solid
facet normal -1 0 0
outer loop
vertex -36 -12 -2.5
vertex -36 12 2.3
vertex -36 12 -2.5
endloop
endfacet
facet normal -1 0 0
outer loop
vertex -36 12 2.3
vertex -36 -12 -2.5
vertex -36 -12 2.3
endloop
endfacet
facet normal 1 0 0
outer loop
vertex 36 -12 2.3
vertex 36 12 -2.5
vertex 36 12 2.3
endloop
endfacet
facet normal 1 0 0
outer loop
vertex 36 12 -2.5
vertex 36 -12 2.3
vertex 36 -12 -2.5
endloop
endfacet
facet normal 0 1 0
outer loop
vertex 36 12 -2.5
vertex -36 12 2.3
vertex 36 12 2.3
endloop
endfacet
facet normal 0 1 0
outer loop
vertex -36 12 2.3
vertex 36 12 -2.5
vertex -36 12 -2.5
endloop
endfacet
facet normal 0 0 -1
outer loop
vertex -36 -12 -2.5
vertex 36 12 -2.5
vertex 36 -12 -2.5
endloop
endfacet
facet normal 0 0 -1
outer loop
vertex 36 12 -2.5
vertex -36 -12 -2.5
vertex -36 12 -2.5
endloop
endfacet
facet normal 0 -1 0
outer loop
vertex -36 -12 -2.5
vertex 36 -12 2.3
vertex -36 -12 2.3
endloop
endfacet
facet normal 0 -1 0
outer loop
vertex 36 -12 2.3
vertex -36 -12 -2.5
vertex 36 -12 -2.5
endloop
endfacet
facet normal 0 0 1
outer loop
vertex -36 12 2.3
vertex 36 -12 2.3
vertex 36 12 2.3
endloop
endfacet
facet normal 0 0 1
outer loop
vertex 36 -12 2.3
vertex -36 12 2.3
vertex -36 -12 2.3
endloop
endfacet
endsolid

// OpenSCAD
// 72 mm long, 24 mm wide, 5 mm high rectangular solid box
// Centered at origin (0,0,0)

difference() {
    // Main solid box
    cube([72, 24, 5], center = true);
    
    // Optional: small chamfer on top edges for visual clarity
    // (comment out if not desired)
    translate([0, 0, 2.4])
        cube([72, 24, 0.2], center = true);
}
